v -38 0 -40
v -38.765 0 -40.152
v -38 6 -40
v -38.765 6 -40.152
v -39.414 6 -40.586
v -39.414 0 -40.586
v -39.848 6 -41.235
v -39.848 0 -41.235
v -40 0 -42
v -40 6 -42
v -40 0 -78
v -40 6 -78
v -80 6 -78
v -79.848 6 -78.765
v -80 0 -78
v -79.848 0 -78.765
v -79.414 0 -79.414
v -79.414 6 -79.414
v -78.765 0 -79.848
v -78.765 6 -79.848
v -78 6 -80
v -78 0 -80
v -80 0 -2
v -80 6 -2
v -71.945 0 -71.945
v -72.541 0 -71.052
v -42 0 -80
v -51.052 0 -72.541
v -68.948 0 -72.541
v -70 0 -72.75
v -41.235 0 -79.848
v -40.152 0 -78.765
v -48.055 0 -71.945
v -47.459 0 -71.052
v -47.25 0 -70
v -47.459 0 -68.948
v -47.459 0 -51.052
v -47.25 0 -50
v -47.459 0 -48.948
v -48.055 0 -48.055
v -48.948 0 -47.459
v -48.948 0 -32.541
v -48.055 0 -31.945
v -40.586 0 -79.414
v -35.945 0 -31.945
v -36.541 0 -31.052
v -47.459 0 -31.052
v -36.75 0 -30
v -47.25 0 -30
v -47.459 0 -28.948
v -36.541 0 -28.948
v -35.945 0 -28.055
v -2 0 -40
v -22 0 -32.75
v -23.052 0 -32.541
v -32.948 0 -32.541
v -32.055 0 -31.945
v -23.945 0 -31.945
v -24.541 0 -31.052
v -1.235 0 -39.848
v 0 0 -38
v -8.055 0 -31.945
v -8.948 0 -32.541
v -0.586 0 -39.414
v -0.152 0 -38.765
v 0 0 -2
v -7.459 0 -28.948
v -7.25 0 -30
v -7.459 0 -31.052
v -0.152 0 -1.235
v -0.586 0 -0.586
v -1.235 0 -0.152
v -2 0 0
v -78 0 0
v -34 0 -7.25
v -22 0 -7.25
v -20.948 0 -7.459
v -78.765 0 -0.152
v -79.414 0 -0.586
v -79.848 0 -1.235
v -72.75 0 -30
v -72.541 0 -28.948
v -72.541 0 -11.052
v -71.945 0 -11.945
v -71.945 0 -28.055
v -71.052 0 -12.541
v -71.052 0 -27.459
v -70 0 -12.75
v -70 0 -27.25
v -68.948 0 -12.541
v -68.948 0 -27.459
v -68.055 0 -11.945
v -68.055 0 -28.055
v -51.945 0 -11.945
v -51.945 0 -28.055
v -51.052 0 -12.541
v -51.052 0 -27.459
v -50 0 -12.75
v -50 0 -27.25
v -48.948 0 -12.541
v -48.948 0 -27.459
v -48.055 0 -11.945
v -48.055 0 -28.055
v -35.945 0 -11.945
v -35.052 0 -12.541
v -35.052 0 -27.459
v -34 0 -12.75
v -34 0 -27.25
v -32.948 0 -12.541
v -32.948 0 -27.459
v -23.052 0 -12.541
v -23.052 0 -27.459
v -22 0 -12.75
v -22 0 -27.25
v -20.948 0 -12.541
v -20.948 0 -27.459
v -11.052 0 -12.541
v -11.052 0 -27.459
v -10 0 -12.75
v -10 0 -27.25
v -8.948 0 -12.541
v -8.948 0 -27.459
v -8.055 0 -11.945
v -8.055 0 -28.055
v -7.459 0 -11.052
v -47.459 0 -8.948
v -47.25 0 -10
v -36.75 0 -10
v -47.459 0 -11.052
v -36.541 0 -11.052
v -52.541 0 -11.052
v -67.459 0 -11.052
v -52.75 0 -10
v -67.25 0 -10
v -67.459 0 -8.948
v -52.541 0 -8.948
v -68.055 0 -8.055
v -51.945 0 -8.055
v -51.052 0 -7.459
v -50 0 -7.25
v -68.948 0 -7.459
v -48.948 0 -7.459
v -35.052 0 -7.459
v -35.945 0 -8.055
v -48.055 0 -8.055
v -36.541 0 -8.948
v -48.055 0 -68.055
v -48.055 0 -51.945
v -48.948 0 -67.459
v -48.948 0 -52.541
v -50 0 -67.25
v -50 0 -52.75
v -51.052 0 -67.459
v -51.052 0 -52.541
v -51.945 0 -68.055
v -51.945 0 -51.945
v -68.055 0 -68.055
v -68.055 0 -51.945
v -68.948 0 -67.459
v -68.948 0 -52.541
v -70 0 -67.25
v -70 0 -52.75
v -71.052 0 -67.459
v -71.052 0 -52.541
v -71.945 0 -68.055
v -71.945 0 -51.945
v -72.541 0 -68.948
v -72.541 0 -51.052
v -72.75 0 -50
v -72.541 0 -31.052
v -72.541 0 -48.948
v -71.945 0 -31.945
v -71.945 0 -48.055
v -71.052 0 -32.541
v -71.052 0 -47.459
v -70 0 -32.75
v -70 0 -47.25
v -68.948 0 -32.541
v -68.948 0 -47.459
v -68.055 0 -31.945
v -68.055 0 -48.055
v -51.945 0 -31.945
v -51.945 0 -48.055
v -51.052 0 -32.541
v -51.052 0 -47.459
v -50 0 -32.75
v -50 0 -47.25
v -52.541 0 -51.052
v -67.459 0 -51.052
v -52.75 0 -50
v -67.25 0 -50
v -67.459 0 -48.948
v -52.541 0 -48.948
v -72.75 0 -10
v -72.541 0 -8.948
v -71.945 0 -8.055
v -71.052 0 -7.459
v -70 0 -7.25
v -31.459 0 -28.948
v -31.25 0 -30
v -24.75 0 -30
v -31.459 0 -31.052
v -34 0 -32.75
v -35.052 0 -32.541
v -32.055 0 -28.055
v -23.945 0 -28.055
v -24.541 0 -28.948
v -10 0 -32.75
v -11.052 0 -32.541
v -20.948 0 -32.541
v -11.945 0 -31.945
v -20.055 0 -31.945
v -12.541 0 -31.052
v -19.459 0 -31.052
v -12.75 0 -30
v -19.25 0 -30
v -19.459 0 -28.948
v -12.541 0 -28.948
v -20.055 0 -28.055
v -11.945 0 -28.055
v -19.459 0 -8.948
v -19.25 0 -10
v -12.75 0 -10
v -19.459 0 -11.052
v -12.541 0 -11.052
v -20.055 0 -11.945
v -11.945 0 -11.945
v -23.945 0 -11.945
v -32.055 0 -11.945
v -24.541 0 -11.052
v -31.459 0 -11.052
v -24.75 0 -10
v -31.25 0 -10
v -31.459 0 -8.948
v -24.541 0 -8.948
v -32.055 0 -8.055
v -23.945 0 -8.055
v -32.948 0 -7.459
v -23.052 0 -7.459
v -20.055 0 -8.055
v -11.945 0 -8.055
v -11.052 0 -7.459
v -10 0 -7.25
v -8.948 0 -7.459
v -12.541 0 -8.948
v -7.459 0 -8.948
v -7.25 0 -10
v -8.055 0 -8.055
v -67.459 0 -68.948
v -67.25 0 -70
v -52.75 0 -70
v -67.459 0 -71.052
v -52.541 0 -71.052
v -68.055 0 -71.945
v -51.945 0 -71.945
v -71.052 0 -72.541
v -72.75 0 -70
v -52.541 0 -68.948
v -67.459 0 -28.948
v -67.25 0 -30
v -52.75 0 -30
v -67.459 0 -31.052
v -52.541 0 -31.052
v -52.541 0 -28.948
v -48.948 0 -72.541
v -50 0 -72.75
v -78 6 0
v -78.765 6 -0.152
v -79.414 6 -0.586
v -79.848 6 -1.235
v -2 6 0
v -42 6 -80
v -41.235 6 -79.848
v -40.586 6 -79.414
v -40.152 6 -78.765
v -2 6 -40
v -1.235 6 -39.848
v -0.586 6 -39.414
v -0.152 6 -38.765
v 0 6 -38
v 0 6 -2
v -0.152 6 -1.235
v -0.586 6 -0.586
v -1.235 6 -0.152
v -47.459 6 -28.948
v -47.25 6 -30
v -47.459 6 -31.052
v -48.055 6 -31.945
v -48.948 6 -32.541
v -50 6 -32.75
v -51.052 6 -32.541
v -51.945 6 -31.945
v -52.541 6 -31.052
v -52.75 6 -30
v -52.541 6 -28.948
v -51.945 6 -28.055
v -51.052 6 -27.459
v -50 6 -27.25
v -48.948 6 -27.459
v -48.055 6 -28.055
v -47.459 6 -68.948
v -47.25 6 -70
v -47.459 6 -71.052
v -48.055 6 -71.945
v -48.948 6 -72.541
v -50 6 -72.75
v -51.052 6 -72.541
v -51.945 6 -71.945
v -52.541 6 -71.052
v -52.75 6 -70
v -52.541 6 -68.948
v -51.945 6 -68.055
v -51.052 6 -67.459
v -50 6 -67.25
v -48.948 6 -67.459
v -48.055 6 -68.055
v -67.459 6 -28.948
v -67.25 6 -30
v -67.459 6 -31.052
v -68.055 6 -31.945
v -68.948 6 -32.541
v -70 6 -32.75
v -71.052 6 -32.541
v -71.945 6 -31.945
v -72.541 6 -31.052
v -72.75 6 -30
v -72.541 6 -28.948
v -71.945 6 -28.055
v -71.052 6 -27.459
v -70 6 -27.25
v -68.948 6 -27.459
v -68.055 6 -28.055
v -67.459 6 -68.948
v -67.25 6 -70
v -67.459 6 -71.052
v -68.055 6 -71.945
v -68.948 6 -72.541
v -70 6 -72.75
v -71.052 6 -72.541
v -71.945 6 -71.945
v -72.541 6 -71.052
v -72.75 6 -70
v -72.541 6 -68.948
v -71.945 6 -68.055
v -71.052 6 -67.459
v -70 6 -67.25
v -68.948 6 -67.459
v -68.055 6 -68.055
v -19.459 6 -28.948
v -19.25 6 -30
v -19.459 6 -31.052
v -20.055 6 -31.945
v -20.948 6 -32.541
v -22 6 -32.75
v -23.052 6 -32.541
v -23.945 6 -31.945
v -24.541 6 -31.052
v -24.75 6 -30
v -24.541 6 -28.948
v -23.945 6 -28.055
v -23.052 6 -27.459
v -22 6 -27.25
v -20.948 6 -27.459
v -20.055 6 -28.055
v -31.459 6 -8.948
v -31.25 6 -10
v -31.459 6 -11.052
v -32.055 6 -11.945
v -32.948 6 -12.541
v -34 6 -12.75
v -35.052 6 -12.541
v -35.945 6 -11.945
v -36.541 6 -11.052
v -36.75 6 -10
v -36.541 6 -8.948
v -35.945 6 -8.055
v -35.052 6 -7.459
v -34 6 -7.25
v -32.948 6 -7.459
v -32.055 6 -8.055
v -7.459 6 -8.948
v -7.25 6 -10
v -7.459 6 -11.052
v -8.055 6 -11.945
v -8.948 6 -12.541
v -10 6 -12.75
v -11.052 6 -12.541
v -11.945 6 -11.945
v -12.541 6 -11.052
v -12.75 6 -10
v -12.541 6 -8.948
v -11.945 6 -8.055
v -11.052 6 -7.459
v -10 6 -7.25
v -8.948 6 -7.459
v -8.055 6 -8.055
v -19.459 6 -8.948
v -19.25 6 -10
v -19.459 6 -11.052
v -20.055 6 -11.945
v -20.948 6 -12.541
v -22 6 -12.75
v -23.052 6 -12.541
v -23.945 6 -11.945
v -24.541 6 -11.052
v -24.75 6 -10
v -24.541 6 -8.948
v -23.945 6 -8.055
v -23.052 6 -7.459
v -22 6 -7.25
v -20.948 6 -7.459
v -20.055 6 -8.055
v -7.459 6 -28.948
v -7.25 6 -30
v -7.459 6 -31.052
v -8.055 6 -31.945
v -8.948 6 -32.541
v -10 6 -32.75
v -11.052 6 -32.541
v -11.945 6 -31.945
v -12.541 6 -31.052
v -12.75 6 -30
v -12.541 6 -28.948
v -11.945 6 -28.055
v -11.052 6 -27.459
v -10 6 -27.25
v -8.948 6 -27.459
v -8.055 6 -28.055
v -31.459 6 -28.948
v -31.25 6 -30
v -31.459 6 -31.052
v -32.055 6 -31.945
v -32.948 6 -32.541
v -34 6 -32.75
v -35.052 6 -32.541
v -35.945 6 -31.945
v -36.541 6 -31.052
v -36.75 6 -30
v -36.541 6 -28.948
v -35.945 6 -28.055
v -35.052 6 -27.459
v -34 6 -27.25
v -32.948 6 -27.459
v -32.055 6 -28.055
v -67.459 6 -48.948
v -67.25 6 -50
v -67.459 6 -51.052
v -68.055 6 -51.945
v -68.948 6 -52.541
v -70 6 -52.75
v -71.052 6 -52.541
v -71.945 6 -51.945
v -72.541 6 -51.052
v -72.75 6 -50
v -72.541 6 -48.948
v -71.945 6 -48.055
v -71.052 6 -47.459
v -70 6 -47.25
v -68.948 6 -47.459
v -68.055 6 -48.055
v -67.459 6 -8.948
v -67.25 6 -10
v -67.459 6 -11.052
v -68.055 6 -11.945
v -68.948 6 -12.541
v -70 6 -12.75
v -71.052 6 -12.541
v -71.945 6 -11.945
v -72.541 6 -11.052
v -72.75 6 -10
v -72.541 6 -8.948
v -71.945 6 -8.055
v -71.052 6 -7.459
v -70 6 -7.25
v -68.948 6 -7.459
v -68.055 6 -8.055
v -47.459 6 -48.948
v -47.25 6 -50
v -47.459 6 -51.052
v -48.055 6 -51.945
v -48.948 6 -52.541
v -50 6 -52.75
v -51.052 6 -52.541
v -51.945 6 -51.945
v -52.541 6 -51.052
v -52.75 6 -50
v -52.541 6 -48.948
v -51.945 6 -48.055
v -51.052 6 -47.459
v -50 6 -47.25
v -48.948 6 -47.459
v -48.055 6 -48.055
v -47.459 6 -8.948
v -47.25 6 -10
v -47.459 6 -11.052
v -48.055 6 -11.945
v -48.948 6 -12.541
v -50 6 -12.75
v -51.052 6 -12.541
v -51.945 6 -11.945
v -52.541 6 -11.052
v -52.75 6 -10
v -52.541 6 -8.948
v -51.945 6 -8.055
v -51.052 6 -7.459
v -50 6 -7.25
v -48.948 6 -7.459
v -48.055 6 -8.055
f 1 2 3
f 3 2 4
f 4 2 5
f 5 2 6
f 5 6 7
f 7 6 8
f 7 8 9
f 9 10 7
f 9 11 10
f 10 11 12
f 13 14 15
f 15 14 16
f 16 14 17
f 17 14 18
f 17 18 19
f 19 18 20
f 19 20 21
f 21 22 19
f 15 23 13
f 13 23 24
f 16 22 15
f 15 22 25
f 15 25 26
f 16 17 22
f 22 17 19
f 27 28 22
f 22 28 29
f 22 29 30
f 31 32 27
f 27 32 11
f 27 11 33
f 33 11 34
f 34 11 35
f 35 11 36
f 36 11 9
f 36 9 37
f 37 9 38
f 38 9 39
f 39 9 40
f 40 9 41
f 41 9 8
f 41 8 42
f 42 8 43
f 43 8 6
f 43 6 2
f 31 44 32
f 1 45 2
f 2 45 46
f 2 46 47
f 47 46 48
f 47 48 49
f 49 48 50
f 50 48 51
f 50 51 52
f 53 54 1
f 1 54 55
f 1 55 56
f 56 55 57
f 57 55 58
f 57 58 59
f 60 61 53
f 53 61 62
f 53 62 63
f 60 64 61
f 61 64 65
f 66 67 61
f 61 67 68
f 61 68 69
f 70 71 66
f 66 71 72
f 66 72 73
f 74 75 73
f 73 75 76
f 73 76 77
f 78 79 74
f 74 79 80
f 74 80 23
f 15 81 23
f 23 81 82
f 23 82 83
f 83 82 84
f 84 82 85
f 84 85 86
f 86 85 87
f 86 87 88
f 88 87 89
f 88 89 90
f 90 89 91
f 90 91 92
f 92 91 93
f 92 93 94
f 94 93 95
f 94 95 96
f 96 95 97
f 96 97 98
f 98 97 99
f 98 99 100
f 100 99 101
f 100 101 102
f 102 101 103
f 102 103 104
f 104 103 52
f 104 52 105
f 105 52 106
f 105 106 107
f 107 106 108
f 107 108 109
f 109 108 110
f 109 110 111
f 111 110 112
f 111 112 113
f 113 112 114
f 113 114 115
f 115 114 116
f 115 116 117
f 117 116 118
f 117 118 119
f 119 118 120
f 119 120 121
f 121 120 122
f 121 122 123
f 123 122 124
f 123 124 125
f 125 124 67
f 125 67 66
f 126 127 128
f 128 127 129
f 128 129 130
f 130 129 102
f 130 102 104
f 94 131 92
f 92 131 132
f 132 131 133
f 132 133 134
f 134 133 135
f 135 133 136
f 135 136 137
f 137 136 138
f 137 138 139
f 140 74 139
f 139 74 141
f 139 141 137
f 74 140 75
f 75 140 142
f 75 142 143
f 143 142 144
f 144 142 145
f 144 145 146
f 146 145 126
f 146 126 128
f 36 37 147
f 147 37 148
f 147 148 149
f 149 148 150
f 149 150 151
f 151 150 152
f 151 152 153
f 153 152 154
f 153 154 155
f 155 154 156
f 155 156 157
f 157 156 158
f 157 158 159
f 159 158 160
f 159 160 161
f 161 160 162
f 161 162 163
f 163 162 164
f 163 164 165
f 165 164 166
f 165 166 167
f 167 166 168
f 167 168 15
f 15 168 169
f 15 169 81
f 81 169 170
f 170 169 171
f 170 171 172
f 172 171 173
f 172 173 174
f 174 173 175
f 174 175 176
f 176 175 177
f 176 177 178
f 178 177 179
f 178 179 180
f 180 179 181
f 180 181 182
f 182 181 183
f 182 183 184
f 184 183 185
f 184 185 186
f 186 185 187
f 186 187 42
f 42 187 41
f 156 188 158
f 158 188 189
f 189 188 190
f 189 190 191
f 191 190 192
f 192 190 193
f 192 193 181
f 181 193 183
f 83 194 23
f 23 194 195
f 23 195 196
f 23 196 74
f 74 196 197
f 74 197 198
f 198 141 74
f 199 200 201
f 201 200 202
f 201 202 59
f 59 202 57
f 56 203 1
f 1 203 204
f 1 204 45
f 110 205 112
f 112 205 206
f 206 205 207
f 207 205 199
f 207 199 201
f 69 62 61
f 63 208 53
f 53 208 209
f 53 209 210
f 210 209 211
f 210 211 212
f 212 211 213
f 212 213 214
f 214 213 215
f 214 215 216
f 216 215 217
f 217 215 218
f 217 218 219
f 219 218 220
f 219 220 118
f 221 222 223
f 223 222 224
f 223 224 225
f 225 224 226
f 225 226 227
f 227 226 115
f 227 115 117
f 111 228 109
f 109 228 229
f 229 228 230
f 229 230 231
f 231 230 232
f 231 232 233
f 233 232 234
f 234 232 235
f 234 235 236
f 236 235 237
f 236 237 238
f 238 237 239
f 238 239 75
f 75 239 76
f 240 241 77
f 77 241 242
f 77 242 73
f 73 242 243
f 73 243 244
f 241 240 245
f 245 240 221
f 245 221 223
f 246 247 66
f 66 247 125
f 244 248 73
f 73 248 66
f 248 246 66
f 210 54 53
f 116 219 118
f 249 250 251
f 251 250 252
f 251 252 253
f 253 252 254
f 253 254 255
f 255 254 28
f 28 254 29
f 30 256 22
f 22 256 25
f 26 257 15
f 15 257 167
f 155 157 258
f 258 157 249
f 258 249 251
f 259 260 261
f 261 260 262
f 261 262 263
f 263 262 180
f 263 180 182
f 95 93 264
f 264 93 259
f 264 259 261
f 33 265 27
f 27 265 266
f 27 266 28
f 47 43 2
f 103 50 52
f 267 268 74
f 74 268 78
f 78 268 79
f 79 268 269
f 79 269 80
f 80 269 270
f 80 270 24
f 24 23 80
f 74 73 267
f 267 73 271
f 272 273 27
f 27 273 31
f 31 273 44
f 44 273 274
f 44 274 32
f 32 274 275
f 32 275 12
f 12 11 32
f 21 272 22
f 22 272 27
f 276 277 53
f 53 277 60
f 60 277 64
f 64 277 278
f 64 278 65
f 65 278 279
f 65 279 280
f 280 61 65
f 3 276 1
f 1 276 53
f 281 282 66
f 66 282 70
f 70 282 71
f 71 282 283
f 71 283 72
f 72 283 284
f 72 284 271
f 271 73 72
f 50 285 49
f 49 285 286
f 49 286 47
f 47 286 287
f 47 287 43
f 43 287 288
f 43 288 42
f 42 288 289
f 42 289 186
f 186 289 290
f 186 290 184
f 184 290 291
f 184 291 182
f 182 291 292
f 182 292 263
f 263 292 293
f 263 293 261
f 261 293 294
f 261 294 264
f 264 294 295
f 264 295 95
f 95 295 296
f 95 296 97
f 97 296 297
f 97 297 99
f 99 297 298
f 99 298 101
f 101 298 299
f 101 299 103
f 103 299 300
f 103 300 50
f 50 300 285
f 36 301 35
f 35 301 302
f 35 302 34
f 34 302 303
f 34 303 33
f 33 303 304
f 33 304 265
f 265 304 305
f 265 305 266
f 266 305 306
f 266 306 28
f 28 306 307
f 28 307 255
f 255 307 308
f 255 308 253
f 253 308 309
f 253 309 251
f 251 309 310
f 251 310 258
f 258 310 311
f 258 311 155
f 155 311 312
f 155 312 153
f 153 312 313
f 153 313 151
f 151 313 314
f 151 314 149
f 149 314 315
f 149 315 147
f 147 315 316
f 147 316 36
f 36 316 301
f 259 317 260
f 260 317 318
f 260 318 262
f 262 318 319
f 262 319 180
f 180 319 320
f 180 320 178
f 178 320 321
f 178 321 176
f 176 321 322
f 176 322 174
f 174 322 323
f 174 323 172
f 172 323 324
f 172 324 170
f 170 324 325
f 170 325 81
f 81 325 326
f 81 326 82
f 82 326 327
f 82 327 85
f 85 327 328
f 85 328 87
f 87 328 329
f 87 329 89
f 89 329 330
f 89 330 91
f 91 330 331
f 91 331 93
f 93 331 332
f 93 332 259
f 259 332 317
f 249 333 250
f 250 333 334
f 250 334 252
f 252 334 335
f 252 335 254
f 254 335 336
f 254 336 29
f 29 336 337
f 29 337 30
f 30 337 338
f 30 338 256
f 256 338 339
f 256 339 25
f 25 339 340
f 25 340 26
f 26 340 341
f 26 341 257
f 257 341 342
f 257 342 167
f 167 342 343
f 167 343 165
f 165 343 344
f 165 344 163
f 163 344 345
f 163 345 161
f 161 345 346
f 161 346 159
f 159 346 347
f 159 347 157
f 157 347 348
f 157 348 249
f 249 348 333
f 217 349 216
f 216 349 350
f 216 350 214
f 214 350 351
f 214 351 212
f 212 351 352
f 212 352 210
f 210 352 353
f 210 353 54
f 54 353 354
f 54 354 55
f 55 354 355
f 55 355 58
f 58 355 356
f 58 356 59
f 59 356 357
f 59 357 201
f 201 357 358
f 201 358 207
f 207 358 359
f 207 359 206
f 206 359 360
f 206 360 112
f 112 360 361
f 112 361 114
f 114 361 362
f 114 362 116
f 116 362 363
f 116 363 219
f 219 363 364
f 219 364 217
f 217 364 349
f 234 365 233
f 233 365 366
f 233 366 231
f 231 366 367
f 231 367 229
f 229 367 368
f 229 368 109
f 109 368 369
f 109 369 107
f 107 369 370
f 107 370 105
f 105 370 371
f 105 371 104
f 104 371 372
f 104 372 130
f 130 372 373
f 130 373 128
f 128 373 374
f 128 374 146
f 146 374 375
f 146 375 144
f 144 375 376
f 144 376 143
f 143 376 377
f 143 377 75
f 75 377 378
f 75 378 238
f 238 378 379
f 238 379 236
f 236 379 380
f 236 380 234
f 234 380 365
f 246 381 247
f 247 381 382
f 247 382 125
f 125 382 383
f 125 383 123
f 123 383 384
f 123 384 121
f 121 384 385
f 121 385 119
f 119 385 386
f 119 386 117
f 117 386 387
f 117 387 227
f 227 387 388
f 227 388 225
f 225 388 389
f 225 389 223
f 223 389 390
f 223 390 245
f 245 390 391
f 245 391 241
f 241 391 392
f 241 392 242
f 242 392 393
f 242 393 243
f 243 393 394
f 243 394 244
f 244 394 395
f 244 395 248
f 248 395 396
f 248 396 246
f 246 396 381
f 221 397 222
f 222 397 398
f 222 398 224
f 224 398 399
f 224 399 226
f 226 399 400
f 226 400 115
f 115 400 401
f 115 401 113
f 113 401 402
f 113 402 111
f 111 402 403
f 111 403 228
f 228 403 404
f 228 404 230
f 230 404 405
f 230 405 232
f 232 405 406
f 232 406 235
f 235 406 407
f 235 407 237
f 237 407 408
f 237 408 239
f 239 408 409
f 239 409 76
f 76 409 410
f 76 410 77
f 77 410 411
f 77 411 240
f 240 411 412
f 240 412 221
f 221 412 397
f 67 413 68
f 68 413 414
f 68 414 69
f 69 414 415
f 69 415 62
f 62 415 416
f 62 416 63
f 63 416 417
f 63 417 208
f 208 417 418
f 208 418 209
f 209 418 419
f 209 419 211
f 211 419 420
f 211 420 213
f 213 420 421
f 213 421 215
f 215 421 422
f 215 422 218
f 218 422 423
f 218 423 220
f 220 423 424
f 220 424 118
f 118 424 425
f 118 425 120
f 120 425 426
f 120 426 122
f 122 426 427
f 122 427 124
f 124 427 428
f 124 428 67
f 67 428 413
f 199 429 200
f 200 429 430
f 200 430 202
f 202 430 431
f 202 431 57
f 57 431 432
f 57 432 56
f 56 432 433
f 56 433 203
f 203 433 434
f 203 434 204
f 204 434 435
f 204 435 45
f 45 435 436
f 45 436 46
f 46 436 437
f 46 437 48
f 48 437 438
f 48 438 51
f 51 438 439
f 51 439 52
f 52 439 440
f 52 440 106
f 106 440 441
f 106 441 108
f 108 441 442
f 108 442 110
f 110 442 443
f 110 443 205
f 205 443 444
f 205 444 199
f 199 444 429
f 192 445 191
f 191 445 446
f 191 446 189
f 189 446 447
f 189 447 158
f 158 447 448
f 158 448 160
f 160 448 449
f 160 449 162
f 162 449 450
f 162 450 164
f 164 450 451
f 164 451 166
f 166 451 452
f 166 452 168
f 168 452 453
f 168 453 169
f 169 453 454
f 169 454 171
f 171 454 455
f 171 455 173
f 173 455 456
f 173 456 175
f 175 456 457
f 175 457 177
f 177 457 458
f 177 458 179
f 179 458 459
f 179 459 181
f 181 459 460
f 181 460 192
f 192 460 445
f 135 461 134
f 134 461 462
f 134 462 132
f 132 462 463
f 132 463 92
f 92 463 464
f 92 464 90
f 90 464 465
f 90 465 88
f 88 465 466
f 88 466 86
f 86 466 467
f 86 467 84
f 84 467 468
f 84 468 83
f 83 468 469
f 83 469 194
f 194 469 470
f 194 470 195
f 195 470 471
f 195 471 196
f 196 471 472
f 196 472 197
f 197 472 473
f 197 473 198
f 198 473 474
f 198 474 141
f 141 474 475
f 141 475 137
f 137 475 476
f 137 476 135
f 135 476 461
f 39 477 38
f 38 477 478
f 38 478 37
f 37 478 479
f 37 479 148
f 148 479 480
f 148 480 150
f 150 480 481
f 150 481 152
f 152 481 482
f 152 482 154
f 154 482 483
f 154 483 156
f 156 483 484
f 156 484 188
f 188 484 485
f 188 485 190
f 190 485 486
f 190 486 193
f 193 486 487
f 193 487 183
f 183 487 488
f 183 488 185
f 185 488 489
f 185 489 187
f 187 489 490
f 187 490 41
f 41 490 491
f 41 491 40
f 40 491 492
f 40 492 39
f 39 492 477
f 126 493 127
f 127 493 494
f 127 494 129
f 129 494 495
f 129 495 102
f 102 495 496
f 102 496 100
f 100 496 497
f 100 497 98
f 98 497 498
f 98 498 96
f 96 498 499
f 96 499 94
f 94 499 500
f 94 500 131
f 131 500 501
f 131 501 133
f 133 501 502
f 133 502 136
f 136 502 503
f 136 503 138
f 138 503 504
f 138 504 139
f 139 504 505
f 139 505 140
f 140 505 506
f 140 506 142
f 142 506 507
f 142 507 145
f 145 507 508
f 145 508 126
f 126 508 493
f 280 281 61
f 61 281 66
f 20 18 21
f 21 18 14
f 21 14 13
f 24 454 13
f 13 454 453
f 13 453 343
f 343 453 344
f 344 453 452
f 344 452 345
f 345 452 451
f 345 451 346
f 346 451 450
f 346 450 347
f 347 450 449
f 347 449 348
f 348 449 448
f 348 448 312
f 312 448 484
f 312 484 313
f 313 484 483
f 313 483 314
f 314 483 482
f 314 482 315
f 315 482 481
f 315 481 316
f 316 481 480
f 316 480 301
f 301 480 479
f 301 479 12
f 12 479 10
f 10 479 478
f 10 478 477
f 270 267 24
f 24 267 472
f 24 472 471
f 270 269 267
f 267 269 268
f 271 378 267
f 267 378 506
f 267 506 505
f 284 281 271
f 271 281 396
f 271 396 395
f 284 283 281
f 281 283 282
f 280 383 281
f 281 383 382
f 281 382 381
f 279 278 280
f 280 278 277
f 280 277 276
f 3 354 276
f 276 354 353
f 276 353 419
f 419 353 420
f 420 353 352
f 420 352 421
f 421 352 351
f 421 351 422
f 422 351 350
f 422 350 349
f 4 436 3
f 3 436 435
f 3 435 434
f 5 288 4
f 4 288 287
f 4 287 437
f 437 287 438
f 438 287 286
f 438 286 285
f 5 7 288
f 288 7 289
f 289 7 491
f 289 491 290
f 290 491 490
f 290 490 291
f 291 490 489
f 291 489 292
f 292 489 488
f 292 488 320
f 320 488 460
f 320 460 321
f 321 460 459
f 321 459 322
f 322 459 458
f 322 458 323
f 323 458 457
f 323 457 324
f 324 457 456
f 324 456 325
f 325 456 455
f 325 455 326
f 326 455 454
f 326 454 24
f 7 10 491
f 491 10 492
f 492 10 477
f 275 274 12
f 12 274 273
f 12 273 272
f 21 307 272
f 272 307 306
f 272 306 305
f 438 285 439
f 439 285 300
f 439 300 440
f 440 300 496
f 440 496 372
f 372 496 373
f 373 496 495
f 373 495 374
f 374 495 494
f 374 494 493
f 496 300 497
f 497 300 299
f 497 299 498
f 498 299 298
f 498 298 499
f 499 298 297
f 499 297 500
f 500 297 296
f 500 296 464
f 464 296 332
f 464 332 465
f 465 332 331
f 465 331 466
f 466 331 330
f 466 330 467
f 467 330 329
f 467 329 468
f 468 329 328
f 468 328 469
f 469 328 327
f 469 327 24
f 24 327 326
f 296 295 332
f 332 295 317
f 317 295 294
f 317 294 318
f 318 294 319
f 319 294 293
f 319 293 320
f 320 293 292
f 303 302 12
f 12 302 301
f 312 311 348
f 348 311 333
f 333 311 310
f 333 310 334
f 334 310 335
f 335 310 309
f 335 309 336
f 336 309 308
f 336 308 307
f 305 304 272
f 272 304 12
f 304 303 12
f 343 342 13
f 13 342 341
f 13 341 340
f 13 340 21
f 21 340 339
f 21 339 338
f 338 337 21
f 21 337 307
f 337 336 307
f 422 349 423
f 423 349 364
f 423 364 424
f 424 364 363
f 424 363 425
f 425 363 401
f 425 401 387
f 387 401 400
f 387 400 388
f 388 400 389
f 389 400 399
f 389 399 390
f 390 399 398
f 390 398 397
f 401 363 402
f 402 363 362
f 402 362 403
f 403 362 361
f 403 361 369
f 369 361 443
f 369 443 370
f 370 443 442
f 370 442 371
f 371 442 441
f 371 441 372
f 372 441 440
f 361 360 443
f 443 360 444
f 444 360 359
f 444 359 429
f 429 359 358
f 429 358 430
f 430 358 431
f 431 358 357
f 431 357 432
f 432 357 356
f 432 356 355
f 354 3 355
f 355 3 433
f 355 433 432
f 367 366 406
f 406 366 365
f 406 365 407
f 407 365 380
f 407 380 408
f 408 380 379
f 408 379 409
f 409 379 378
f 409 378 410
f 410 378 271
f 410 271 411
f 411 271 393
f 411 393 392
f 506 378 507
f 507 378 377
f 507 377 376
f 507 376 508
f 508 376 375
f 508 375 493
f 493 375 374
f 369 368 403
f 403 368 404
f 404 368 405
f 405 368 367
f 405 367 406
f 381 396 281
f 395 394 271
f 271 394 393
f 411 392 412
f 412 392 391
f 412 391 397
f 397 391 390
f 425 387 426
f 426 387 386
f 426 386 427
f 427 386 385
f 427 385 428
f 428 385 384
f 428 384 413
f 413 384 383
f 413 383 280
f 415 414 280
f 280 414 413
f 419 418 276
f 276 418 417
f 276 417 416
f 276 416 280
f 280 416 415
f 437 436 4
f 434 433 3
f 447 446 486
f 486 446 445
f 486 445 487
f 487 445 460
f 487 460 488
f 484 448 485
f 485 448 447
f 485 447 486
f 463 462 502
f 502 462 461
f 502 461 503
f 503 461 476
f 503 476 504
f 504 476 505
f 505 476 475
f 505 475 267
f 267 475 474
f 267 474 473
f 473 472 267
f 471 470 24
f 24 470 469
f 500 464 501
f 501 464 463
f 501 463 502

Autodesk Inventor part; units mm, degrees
ref_plane "YZ Plane" through (0, 0, 0) normal (1, 0, 0) x (0, 1, 0)
ref_plane "XZ Plane" through (0, 0, 0) normal (0, 1, 0) x (-1, 0, 0)
ref_plane "XY Plane" through (0, 0, 0) normal (0, 0, 1) x (1, 0, 0)
sketch "Sketch1" plane through (0, 0, 0) normal (0, 1, 0) x (-1, 0, 0)
  line L0 (0, 0) -> (40, 0)
  line L1 (40, 0) -> (40, -40)
  line L2 (40, -40) -> (0, -40)
  line L3 (0, -40) -> (0, 0)
  line L4 (40, 0) -> (80, 0)
  line L5 (80, 0) -> (80, -80)
  line L6 (80, -80) -> (40, -80)
  line L7 (40, -80) -> (40, 0)
  dimension "d0" = 40
  dimension "d1" = 40
  dimension "d2" = 40
  dimension "d3" = 80
extrude "Extrusion1" add sketch "Sketch1" along normal blind 6
sketch "Sketch2" plane through (0, 6, 0) normal (0, 1, 0) x (1, 0, 0)
  line L0 (0, 0) -> (0, 40) projected
  line L1 (0, 0) -> (0, 10)
  line L2 (0, 40) -> (0, 30)
  circle A0 centre (-10, 10) radius 2.75
  line L3 (-80, 0) -> (0, 0) projected
  circle A1 centre (-22, 10) radius 2.75
  circle A2 centre (-34, 10) radius 2.75
  circle A3 centre (-10, 30) radius 2.75
  circle A4 centre (-22, 30) radius 2.75
  circle A5 centre (-34, 30) radius 2.75
  circle A6 centre (-70, 70) radius 2.75
  line L4 (-80, 80) -> (-80, 0) projected
  line L5 (-40, 80) -> (-80, 80) projected
  circle A7 centre (-70, 50) radius 2.75
  circle A8 centre (-70, 30) radius 2.75
  circle A9 centre (-70, 10) radius 2.75
  circle A10 centre (-50, 70) radius 2.75
  circle A11 centre (-50, 50) radius 2.75
  circle A12 centre (-50, 30) radius 2.75
  circle A13 centre (-50, 10) radius 2.75
  dimension "d6" = 10
  dimension "d7" = 10
  dimension "d8" = 5.5
  dimension "d9" = 10
  dimension "d10" = 10
  dimension "d13" = 12
  dimension "d16" = 20
  dimension "d19" = 5.5
  dimension "d20" = 10
  dimension "d21" = 10
  dimension "d24" = 20
  dimension "d27" = 20
extrude "Extrusion2" cut sketch "Sketch2" against normal up to next
fillet "Fillet1" radius 2 6 edges at (0, 3, 0) (0, 3, -40) (-40, 3, -80) (-80, 3, 0) (-80, 3, -80) (-40, 3, -40)
properties part number "90deg_4040Bracket"
